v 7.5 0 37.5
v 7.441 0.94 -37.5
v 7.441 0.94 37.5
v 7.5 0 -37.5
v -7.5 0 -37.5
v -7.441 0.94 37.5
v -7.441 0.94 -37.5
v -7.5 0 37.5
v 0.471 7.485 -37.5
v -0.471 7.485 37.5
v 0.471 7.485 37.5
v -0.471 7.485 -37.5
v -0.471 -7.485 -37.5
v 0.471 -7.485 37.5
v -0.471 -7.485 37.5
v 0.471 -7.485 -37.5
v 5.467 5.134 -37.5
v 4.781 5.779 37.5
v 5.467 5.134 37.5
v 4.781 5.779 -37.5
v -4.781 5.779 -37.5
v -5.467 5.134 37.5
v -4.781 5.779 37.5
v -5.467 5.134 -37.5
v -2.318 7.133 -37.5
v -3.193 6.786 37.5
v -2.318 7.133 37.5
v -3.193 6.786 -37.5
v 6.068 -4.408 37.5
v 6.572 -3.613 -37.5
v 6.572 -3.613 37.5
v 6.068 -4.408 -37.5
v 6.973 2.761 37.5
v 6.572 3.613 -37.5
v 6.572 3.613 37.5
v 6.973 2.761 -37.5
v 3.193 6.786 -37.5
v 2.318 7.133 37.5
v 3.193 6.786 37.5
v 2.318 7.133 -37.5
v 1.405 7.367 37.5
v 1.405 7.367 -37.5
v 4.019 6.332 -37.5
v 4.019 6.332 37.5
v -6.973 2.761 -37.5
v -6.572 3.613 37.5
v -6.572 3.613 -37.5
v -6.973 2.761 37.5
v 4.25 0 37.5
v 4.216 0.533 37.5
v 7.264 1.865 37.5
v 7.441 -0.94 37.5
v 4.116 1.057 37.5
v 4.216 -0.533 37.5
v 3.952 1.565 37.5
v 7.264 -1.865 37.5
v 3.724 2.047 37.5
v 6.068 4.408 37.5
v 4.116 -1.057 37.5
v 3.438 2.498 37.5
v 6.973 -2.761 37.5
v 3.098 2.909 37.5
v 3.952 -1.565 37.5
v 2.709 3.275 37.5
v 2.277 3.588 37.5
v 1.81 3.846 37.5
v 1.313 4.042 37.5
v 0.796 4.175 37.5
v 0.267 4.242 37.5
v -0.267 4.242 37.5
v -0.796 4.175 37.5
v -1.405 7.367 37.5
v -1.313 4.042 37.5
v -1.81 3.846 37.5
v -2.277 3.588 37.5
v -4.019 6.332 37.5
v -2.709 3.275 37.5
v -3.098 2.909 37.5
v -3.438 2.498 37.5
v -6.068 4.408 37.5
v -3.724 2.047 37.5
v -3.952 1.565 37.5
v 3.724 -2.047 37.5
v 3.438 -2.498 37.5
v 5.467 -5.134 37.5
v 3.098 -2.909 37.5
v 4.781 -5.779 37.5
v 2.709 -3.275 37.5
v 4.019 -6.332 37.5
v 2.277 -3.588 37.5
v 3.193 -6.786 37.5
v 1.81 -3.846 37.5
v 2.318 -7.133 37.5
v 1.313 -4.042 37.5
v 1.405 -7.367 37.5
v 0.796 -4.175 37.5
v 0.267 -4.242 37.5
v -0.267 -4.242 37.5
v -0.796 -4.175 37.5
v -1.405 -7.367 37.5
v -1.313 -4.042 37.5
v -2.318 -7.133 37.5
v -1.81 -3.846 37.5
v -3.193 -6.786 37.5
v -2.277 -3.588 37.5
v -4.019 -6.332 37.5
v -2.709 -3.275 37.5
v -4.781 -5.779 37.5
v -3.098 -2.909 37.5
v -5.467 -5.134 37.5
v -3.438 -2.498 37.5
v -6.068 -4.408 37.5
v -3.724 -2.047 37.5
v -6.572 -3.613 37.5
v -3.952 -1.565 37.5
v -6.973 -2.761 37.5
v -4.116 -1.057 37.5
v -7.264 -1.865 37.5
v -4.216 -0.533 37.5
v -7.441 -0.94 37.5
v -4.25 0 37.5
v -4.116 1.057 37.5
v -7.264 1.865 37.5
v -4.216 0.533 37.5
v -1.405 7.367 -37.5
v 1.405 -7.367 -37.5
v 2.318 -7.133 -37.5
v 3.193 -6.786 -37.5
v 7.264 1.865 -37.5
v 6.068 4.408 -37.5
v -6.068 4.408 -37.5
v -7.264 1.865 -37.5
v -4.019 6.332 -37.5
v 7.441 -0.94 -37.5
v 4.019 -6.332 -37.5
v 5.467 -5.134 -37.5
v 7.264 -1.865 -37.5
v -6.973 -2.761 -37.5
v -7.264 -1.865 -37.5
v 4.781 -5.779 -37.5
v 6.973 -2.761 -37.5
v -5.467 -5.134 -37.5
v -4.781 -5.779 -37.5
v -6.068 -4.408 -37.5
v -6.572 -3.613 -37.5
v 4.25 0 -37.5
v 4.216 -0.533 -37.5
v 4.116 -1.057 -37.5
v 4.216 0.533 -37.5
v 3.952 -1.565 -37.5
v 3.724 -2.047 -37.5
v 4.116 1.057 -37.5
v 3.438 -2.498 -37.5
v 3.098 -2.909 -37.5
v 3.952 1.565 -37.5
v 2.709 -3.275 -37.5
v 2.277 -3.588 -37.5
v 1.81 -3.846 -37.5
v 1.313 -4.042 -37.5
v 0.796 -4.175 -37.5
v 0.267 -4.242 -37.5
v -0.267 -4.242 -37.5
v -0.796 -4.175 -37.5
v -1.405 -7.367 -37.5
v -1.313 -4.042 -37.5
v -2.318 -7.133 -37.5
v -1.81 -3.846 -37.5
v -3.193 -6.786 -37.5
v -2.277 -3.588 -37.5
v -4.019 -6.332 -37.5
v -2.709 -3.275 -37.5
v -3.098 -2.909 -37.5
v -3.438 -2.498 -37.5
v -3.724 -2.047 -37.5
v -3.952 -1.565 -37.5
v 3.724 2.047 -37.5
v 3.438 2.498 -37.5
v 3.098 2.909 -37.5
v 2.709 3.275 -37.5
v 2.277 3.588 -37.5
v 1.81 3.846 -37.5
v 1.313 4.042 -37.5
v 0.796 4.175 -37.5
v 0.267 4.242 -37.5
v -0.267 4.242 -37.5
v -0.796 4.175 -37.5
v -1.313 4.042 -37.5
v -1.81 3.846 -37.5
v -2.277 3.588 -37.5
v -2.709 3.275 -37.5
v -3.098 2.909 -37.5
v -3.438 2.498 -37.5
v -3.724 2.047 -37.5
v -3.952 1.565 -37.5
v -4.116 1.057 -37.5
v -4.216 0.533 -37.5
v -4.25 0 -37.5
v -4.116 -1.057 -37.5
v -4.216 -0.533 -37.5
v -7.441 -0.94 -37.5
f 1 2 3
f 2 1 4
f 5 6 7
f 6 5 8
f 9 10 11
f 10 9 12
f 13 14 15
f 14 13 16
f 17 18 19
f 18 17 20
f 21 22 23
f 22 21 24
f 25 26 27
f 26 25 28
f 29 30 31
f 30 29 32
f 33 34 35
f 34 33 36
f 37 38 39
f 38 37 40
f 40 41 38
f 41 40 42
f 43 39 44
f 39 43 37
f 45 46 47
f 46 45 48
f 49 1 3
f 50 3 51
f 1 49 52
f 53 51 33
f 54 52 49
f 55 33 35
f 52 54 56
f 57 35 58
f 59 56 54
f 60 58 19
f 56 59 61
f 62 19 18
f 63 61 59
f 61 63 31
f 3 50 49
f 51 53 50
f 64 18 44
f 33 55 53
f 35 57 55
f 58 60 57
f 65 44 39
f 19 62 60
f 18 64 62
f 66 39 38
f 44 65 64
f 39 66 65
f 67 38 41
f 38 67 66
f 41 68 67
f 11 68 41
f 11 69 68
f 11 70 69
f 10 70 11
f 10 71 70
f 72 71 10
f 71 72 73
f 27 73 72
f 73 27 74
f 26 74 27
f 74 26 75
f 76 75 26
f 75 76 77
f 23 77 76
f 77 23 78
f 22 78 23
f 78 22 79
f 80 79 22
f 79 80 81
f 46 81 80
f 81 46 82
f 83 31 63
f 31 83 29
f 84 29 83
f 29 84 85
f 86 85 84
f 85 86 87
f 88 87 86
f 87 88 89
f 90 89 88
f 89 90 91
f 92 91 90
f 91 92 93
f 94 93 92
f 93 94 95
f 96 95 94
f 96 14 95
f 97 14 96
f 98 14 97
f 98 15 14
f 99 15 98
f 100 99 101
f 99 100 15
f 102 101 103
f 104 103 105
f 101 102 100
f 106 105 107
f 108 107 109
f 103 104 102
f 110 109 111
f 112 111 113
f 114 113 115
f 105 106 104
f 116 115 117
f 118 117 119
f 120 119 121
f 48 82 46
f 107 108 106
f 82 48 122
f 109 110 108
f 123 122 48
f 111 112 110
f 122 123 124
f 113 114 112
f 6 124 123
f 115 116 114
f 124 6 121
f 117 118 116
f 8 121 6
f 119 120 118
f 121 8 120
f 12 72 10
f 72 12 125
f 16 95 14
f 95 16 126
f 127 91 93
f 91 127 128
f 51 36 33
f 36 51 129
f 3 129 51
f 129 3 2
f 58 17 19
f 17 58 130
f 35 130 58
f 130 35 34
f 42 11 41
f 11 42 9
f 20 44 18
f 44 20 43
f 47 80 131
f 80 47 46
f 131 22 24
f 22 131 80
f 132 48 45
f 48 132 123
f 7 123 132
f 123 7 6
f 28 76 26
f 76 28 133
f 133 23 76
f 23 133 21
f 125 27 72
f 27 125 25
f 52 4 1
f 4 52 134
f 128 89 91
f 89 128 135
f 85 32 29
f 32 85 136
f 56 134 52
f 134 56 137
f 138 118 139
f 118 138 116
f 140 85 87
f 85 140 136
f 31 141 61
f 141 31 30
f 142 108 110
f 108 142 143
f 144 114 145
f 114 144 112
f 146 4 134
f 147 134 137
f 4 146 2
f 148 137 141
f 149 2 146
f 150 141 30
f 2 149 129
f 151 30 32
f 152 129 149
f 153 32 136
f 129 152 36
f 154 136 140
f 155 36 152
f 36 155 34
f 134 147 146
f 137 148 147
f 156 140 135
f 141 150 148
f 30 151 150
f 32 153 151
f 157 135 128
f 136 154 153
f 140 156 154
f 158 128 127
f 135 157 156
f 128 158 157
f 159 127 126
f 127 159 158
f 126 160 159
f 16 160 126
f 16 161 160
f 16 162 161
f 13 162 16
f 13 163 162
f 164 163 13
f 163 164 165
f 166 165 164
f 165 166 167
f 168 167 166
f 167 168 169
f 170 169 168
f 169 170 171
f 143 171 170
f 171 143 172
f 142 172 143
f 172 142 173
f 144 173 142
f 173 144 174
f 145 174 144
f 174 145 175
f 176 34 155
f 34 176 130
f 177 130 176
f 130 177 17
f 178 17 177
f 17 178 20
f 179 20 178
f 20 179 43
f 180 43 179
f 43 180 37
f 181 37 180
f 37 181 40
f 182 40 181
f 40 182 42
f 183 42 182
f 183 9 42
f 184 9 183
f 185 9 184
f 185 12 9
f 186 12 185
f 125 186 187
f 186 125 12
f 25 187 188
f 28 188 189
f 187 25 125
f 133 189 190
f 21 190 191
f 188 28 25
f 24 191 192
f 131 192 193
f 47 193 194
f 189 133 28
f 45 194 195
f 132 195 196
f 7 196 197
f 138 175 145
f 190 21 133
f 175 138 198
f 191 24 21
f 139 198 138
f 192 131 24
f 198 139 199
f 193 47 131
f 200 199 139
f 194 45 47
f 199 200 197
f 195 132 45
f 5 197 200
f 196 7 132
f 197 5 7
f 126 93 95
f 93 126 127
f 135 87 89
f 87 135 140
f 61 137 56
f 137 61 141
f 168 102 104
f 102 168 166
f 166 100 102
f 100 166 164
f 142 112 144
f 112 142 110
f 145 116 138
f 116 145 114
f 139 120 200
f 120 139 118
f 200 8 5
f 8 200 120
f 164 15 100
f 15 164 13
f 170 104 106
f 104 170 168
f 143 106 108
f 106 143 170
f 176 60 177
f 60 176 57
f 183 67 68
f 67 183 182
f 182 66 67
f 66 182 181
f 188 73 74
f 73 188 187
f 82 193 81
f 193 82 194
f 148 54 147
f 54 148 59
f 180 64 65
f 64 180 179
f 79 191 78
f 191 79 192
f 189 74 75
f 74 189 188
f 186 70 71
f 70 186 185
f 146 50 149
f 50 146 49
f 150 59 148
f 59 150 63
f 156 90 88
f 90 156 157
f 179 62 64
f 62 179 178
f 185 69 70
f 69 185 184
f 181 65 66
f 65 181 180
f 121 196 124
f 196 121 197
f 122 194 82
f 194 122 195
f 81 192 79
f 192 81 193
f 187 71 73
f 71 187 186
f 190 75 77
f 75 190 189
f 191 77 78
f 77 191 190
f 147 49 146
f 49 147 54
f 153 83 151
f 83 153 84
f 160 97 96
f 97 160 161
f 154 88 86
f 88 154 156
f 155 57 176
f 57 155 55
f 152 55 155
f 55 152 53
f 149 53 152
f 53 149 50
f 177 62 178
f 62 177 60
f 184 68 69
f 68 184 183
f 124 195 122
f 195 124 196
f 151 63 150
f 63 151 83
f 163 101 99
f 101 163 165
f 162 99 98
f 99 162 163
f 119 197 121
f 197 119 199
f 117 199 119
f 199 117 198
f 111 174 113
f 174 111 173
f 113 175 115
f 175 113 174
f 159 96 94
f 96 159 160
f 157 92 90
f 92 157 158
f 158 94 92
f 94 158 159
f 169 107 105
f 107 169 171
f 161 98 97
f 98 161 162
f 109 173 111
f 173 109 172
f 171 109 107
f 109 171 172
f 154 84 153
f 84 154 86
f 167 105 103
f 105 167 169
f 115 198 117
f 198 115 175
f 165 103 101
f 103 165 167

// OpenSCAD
$fn = 50;


difference() {
	union() {
		translate(v = [0, 0, -37.5000000000]) {
			cylinder(h = 75, r = 7.5000000000);
		}
	}
	union() {
		translate(v = [0, 0, -100.0000000000]) {
			cylinder(h = 200, r = 4.2500000000);
		}
	}
}
